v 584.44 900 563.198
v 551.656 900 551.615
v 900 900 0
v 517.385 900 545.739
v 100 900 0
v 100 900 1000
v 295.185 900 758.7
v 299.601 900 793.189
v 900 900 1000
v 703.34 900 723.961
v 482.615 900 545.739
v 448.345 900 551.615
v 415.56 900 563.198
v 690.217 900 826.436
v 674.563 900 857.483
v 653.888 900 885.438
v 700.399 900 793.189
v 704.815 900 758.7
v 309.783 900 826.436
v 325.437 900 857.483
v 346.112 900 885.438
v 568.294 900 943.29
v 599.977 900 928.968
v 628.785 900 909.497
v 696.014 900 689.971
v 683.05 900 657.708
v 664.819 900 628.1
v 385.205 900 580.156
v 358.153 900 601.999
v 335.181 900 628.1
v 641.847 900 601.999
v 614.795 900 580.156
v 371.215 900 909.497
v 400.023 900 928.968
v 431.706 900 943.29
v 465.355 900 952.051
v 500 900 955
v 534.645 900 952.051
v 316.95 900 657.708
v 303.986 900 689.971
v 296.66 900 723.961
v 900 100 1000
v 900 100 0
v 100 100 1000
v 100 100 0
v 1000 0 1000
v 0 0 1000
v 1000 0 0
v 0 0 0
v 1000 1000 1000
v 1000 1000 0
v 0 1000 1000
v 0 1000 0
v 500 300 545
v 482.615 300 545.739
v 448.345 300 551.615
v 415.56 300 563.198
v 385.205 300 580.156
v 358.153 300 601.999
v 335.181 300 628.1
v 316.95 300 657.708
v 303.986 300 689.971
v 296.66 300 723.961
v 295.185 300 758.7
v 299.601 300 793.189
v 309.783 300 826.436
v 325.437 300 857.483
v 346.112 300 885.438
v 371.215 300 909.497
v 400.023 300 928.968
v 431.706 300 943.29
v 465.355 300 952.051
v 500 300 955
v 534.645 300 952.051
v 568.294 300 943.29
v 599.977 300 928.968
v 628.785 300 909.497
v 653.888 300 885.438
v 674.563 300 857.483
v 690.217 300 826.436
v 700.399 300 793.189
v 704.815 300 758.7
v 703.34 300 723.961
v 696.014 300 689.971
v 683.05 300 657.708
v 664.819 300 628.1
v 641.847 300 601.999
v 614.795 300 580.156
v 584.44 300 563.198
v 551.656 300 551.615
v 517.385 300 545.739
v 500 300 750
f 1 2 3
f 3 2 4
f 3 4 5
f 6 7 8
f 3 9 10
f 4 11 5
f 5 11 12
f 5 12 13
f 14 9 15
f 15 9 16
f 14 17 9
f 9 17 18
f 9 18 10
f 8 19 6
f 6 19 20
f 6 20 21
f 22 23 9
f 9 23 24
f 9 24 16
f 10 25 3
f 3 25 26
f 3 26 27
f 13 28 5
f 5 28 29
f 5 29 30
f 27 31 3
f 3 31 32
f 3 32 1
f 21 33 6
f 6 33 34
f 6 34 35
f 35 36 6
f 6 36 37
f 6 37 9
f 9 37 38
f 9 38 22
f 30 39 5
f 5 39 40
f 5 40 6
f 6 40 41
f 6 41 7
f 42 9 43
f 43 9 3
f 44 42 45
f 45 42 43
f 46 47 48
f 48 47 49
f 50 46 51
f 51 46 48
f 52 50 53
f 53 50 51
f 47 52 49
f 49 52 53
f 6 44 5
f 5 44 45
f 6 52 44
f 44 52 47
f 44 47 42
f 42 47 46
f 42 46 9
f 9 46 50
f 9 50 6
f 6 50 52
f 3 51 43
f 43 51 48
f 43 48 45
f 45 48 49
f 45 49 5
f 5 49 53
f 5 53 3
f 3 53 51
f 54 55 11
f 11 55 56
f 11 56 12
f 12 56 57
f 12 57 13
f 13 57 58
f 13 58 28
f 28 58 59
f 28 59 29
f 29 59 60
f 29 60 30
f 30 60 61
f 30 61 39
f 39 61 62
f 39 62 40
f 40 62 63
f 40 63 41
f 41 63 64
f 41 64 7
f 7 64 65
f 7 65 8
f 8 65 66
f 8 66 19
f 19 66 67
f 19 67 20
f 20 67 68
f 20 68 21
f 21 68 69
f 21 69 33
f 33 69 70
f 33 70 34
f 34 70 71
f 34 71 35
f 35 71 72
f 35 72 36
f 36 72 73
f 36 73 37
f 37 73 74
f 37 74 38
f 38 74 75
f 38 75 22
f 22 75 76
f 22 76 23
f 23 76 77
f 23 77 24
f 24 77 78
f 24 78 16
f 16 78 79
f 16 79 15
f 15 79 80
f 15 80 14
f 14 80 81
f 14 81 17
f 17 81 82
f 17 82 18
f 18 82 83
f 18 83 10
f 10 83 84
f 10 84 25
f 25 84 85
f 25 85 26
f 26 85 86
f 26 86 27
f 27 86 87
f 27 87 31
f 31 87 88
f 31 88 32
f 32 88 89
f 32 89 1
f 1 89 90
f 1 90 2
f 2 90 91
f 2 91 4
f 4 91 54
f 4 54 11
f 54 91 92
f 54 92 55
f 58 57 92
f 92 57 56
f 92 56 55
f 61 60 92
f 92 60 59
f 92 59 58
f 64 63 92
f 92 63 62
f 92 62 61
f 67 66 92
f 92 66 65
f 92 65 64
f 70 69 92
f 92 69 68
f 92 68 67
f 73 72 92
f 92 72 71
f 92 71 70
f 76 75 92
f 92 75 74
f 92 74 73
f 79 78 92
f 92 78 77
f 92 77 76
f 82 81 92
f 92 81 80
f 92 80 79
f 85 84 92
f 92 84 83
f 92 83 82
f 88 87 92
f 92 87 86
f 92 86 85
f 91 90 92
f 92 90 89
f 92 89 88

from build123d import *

# Parameters (mm, degrees)
SKETCH1_W           = 1000
SKETCH1_H           = 1000
SKETCH1_W_2         = 800
SKETCH1_H_2         = 800
BOSS_EXTRUDE1_DEPTH = 1000
SKETCH2_R           = 205
BOSS_EXTRUDE2_DEPTH = 600


with BuildPart() as part:
    # Sketch1 → Boss-Extrude1 (new body)
    with BuildSketch(Plane.XY):
        with Locations((500, 500)):
            Rectangle(SKETCH1_W, SKETCH1_H)
        with Locations((500, 500)):
            Rectangle(SKETCH1_W_2, SKETCH1_H_2, mode=Mode.SUBTRACT)
    extrude(amount=BOSS_EXTRUDE1_DEPTH)

    # Sketch2 → Boss-Extrude2 (add)
    with BuildSketch(Plane.XZ.offset(-900)):
        with Locations(Location((500, 750, 0), (0, 0, 90))):
            Circle(SKETCH2_R)
    extrude(amount=BOSS_EXTRUDE2_DEPTH)


solid = part.part
